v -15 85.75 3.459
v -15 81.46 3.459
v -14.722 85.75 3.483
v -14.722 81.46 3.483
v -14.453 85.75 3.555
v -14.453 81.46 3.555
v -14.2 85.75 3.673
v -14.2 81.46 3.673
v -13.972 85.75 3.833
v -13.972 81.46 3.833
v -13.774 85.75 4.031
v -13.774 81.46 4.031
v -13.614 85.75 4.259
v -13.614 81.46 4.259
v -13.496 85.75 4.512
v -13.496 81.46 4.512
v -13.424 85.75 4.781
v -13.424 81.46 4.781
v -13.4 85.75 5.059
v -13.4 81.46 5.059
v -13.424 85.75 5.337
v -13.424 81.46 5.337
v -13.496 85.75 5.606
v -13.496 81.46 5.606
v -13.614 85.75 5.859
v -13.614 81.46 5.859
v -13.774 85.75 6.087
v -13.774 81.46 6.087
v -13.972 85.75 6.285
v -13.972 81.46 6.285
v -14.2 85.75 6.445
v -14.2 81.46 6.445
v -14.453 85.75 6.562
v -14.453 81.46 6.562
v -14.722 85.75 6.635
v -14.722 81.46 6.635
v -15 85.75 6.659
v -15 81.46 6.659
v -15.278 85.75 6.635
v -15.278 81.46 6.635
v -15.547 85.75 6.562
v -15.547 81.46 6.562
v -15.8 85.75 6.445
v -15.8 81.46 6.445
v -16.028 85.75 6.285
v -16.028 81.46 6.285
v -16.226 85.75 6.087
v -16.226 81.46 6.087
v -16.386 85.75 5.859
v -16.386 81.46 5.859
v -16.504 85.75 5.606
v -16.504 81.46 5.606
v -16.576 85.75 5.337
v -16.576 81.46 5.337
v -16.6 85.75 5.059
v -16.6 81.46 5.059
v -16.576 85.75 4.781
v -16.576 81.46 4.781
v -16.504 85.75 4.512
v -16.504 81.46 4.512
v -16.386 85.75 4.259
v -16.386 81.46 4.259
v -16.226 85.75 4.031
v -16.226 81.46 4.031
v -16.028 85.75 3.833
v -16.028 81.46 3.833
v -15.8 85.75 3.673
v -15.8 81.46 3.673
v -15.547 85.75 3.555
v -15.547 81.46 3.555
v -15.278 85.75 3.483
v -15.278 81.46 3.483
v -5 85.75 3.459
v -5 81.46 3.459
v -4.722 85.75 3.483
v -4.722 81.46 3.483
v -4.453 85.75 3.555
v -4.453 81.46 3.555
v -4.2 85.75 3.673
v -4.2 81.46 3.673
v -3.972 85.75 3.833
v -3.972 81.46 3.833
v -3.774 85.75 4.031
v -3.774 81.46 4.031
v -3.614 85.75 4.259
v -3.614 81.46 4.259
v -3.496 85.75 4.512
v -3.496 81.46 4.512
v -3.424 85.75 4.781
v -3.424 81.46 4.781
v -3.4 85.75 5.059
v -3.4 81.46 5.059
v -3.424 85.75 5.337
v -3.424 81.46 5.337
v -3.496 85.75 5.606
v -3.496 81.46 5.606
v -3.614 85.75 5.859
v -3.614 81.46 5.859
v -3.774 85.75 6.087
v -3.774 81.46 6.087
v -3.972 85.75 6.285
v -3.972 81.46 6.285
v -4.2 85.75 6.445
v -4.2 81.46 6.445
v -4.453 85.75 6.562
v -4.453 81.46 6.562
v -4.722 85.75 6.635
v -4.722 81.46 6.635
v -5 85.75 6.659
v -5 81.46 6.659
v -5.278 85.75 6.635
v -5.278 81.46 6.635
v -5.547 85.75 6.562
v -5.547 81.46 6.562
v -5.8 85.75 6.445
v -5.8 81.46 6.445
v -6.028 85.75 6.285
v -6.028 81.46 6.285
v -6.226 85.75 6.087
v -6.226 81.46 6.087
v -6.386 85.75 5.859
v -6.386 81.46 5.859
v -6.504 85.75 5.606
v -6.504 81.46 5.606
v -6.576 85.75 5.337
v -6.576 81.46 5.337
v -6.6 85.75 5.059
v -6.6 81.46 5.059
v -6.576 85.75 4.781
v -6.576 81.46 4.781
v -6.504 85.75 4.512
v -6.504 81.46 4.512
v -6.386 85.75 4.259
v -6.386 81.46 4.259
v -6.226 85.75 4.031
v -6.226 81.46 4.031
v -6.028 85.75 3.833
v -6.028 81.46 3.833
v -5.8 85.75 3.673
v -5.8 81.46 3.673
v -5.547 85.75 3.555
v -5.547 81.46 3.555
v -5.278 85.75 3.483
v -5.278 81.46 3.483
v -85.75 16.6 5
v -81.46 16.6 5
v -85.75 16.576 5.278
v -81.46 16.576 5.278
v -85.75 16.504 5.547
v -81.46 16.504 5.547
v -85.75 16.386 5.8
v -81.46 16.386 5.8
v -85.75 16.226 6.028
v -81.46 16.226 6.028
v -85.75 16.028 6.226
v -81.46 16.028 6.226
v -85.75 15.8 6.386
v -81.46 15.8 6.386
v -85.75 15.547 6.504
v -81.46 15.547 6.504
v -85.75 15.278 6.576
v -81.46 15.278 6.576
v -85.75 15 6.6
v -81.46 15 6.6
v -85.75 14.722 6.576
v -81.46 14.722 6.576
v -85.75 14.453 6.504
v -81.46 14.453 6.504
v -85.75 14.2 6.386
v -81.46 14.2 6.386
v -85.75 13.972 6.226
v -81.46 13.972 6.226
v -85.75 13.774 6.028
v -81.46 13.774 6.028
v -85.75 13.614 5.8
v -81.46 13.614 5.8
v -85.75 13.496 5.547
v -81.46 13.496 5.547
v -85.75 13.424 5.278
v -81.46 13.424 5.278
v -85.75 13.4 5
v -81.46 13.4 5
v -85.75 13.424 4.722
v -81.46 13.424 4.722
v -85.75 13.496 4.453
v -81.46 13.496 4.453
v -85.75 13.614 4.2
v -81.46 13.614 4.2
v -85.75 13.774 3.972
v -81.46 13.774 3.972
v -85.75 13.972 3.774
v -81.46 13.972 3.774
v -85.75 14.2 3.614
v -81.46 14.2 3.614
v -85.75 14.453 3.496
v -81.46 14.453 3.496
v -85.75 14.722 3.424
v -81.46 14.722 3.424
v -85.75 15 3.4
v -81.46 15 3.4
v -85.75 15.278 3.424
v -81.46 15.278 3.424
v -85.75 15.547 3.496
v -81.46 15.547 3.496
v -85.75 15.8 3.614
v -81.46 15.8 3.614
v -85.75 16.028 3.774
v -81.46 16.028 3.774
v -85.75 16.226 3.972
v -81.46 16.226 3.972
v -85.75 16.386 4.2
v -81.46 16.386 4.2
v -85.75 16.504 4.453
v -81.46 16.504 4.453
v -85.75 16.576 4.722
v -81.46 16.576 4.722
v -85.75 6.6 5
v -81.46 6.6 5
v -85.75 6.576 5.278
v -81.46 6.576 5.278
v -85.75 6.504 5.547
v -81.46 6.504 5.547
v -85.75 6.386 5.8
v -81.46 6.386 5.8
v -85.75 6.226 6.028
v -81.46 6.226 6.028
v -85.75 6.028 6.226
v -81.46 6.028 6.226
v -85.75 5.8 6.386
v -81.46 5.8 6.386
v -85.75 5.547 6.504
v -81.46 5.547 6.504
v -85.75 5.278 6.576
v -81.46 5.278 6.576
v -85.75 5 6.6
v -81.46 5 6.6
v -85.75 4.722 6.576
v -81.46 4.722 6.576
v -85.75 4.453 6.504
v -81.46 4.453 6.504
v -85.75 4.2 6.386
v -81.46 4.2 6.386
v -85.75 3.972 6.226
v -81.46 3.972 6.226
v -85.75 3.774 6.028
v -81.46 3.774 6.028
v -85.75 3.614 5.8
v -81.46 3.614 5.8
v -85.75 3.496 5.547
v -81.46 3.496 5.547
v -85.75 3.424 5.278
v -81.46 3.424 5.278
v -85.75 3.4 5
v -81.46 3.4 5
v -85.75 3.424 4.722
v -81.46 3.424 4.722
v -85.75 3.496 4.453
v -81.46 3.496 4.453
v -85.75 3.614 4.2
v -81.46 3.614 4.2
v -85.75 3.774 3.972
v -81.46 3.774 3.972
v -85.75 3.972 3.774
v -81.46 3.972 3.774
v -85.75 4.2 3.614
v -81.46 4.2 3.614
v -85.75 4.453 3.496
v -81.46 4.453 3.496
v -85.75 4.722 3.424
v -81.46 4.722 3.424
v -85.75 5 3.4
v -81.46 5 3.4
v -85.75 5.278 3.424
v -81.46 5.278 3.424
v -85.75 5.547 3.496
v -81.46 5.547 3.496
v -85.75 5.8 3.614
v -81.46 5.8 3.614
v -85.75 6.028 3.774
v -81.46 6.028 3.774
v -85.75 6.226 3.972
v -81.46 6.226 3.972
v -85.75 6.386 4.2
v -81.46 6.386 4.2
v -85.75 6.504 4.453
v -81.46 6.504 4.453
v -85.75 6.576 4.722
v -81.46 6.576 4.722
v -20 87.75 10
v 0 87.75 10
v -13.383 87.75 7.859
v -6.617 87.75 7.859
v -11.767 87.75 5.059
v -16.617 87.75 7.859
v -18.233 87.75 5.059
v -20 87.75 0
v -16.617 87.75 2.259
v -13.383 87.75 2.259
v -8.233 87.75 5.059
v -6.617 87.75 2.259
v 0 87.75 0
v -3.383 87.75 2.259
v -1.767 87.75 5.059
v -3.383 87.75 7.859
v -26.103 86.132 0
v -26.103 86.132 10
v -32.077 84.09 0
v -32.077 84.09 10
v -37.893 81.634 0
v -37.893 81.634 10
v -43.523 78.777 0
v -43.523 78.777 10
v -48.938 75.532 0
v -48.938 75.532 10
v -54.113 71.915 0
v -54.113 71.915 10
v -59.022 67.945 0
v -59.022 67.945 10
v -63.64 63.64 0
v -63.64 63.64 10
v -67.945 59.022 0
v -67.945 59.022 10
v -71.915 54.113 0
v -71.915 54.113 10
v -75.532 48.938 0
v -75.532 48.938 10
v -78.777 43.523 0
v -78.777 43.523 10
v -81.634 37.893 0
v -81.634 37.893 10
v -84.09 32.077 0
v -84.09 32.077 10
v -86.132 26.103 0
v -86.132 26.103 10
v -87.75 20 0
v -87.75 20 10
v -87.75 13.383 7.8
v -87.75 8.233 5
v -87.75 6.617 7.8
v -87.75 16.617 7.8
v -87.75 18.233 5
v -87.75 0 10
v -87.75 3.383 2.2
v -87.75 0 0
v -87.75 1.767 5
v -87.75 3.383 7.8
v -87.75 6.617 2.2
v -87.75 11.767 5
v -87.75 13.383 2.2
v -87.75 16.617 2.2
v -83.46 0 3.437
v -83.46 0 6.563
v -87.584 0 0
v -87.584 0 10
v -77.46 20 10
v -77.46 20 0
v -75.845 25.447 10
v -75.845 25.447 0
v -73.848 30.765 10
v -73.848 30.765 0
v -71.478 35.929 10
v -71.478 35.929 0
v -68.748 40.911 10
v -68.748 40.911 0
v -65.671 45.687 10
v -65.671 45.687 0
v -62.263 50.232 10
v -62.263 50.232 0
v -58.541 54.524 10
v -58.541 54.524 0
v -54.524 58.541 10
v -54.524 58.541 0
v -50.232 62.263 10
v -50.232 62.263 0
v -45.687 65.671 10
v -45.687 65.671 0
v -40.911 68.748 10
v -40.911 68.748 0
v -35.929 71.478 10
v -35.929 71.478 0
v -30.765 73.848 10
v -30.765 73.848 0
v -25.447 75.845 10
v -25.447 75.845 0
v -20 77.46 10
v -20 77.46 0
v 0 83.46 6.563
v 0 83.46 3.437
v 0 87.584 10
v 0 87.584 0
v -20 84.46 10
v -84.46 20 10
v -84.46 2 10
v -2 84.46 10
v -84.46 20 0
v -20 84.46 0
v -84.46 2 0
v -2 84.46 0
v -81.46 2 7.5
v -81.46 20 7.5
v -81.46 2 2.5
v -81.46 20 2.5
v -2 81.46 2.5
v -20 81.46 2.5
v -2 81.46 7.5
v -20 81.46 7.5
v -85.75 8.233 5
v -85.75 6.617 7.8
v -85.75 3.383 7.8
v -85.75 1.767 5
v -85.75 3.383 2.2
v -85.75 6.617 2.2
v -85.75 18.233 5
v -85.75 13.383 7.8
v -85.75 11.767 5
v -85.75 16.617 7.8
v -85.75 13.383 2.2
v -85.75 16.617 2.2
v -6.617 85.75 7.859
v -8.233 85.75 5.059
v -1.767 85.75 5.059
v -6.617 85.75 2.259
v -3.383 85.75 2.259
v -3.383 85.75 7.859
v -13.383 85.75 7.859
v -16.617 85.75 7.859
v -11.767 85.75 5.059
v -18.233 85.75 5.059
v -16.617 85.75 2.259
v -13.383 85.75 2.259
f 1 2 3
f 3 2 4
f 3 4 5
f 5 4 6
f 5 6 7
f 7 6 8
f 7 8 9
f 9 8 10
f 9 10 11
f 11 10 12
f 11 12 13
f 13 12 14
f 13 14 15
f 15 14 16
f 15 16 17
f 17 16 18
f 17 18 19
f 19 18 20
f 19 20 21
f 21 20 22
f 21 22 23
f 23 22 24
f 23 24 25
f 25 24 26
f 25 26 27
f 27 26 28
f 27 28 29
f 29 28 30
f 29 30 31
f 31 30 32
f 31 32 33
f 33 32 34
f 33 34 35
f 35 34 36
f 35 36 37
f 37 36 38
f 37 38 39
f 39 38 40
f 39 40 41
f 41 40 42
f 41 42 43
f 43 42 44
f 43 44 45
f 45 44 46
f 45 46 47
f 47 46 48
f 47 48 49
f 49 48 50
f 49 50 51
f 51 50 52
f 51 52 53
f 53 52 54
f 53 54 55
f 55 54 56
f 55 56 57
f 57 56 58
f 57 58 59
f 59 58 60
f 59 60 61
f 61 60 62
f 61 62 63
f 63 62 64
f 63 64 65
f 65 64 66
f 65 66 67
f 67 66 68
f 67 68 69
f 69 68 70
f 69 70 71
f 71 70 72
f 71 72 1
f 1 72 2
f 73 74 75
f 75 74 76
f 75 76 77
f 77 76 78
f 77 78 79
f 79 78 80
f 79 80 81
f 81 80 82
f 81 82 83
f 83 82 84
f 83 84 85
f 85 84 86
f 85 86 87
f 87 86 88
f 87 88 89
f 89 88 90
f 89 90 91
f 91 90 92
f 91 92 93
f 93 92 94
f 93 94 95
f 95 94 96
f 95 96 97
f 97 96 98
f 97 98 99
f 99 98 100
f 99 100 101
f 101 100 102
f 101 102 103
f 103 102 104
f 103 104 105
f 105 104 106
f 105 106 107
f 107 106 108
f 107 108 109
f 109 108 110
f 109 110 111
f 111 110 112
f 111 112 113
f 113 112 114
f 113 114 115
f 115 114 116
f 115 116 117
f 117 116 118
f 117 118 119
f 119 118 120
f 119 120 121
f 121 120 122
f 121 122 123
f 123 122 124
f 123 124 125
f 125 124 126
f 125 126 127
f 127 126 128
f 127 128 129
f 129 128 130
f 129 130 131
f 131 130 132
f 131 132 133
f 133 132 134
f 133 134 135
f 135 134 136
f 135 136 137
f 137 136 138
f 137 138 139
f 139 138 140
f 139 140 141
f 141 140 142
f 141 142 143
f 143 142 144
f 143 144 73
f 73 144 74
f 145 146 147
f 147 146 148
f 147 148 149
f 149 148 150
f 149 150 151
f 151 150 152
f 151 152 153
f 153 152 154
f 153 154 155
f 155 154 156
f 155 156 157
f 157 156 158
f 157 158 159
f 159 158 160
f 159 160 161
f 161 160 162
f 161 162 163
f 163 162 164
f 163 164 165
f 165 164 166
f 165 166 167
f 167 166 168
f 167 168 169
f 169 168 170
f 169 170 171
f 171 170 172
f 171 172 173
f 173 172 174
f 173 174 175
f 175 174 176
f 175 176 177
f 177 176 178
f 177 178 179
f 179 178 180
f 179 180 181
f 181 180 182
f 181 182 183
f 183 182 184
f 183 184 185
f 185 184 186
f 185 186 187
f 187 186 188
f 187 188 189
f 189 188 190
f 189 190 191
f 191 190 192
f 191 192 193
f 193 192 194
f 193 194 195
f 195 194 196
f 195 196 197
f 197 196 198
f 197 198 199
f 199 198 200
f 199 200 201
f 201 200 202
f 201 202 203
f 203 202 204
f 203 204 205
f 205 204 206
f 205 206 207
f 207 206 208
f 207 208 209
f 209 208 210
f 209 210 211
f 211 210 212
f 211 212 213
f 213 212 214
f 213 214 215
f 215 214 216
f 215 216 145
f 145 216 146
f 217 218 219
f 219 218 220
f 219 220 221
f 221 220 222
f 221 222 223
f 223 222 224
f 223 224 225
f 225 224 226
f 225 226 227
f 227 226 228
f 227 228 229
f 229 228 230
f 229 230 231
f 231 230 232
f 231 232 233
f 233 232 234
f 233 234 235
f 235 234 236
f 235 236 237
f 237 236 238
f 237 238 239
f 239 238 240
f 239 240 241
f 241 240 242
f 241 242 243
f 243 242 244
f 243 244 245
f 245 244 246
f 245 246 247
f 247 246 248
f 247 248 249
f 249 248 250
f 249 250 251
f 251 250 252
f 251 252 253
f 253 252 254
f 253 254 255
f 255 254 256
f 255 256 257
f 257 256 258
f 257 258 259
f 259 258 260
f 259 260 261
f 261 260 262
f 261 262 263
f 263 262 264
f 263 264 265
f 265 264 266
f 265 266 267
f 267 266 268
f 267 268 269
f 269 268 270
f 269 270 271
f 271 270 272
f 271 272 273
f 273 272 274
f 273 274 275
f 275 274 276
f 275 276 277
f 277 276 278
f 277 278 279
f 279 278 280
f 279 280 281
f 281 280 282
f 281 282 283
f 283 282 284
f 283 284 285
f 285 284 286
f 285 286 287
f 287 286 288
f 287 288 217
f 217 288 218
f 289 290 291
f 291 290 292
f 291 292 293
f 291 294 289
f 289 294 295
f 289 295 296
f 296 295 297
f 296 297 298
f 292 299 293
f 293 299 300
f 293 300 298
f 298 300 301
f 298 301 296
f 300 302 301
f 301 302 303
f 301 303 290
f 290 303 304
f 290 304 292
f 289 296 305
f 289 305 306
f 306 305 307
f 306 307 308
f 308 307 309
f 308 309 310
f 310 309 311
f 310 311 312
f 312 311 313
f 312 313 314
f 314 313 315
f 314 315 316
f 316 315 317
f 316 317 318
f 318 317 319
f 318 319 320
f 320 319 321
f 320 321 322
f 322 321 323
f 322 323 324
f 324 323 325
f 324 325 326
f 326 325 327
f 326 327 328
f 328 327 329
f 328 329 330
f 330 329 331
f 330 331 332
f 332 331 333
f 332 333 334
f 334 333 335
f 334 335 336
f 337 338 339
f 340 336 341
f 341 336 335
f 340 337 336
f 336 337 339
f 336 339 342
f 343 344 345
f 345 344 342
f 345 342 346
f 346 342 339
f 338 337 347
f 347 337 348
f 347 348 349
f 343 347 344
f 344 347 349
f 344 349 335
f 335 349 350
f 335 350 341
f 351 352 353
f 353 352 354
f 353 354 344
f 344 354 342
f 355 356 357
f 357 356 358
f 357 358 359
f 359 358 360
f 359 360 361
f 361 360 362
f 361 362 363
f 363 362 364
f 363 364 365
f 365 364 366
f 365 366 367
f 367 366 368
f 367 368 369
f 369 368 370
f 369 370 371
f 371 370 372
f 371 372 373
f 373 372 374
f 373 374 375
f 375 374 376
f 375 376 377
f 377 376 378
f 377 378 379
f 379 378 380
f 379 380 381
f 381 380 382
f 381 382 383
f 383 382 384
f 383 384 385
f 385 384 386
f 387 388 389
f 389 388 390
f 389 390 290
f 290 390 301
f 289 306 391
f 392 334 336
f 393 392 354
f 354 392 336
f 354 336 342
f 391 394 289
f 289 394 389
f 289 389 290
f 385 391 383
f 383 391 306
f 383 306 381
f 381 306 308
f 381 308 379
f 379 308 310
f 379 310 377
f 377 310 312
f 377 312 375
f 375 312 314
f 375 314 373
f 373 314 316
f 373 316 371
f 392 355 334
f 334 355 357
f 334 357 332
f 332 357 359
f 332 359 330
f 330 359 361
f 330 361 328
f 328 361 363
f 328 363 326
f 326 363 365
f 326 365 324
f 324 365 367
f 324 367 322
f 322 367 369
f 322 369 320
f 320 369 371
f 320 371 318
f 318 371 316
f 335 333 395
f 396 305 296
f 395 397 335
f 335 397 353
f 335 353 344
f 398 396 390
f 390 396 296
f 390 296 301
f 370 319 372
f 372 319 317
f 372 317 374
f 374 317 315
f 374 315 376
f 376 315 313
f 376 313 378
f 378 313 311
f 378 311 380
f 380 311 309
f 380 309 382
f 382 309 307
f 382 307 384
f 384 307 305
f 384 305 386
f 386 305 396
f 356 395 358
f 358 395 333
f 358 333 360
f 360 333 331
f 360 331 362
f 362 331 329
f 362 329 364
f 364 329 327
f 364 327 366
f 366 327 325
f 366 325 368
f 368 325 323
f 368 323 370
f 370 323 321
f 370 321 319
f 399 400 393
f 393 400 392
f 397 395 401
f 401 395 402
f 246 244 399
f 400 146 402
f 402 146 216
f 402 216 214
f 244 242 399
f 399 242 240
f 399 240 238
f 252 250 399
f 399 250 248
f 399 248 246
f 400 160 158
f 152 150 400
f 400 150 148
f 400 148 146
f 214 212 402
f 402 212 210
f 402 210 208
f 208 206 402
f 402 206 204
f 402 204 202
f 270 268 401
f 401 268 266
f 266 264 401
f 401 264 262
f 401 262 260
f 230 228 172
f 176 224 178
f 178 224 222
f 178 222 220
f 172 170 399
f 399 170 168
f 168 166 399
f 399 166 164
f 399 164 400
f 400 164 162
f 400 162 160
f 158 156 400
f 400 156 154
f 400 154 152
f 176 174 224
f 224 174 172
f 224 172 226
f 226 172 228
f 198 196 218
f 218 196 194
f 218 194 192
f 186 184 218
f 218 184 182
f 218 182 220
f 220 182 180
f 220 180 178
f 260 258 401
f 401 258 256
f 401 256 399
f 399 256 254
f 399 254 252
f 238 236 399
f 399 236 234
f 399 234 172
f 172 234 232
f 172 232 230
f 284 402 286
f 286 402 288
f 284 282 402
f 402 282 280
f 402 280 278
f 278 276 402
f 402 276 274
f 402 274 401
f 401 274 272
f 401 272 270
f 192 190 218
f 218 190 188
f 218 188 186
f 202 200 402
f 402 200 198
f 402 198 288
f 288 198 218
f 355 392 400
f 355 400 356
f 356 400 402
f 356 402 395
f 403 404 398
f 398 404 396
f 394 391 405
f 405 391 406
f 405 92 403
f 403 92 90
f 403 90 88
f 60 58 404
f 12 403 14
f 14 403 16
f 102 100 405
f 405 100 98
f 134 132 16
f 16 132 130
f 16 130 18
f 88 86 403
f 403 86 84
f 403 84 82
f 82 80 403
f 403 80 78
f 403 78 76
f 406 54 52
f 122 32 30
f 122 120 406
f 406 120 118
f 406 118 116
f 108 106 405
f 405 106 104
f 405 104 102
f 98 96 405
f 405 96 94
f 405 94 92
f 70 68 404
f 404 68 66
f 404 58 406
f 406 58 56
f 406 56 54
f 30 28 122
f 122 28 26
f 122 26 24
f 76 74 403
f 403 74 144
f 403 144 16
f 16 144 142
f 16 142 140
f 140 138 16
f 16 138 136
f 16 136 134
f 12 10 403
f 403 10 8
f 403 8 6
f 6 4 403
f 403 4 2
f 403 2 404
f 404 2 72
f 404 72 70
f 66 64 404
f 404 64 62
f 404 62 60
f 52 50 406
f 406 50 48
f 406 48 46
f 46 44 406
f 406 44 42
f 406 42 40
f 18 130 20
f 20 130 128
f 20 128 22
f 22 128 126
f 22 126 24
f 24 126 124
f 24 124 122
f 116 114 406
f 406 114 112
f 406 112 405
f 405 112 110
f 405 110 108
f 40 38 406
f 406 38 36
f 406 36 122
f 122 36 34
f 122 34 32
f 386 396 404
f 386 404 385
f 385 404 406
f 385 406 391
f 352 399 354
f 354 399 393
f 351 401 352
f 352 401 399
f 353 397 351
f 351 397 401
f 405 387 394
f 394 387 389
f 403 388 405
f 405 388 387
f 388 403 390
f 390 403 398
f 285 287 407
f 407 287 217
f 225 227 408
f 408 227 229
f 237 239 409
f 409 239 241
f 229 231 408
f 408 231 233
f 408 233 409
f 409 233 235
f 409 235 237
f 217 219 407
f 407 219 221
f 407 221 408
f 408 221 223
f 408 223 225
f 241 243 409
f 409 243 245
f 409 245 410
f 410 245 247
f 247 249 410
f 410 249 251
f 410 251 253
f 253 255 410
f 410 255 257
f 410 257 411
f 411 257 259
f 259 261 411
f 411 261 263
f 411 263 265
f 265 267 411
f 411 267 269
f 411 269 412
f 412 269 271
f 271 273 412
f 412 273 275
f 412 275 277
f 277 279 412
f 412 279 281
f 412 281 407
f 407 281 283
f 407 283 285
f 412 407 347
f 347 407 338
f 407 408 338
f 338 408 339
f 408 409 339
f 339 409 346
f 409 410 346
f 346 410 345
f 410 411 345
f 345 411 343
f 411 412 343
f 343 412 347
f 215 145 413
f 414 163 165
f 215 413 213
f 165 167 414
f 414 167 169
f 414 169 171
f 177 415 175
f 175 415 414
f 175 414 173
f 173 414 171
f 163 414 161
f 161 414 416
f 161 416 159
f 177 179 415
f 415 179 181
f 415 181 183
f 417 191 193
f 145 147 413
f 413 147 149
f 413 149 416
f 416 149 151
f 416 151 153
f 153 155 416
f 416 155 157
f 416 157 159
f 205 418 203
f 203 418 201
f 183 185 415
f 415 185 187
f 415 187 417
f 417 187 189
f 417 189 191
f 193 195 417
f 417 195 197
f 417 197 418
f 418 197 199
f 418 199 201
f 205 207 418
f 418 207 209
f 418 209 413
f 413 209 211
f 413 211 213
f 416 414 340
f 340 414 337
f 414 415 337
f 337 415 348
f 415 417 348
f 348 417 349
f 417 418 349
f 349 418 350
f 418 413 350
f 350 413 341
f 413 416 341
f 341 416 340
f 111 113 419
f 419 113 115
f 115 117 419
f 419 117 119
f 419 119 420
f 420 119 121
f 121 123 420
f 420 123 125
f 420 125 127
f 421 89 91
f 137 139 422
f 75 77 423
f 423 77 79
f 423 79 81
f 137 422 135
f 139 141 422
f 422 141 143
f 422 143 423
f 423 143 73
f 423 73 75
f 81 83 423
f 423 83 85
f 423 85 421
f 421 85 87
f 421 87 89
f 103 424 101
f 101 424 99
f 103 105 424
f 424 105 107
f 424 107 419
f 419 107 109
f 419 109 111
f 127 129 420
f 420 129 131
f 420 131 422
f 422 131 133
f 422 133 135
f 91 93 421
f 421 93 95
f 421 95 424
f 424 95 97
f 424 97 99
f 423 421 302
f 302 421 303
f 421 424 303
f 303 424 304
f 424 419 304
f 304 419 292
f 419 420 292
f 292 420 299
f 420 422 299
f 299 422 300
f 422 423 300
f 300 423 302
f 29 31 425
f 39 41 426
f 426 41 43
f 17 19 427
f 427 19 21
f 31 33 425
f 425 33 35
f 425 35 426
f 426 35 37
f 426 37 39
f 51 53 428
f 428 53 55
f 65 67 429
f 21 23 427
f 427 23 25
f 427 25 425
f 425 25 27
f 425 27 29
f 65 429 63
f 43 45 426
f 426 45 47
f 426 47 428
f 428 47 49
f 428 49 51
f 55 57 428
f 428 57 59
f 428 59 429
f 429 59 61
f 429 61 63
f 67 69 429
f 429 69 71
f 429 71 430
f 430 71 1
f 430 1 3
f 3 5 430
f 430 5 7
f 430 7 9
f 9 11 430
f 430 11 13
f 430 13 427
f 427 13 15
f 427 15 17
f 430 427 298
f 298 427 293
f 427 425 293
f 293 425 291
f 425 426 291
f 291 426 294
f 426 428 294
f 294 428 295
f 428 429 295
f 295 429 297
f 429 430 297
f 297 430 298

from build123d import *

# Parameters (mm, degrees)
BOSS_EXTRU_1_DEPTH      = 10
ENL_V_MAT_EXTRU_1_DEPTH = 20
ENL_V_MAT_EXTRU_2_DEPTH = 20
ESQUISSE5_R             = 1.6
ENL_V_MAT_EXTRU_3_DEPTH = 20
ESQUISSE6_R             = 1.6
ENL_V_MAT_EXTRU_4_DEPTH = 20
CHANFREIN1_SIZE         = 2
ENL_V_MAT_EXTRU_5_DEPTH = 2
ENL_V_MAT_EXTRU_6_DEPTH = 2


with BuildPart() as part:
    # Esquisse1 → Boss.-Extru.1 (new body)
    with BuildSketch(Plane.XY):
        with BuildLine():
            Line((-20, 87.749643874), (0, 87.749643874))
            Line((0, 87.749643874), (0, 77.459666924))
            Line((0, 77.459666924), (-20, 77.459666924))
            ThreePointArc((-20, 77.459666924), (-56.568542495, 56.568542495), (-77.459666924, 20))
            Line((-77.459666924, 20), (-77.459666924, 0))
            Line((-77.459666924, 0), (-87.749643874, 0))
            Line((-87.749643874, 0), (-87.749643874, 20))
            ThreePointArc((-87.749643874, 20), (-63.639610307, 63.639610307), (-20, 87.749643874))
        make_face()
    extrude(amount=BOSS_EXTRU_1_DEPTH)

    # Esquisse2 → Enlèv. mat.-Extru.1 (cut)
    with BuildSketch(Plane.XZ):
        Polygon((-84.459666924, 10), (-77.459666924, 10), (-77.459666924, 0), (-84.459666924, 0), (-81.459666924, 2.5), (-81.459666924, 7.5), align=None)
    extrude(amount=-ENL_V_MAT_EXTRU_1_DEPTH, mode=Mode.SUBTRACT)

    # Esquisse4 → Enlèv. mat.-Extru.2 (cut)
    with BuildSketch(Plane(origin=(0, 0, 0), x_dir=(0, 0, -1), z_dir=(1, 0, 0))):
        Polygon((0, 84.459666924), (0, 77.459666924), (-10, 77.459666924), (-10, 84.459666924), (-7.5, 81.459666924), (-2.5, 81.459666924), align=None)
    extrude(amount=-ENL_V_MAT_EXTRU_2_DEPTH, mode=Mode.SUBTRACT)

    # Esquisse5 → Enlèv. mat.-Extru.3 (cut)
    with BuildSketch(Plane(origin=(-81.459666924, 0, 0), x_dir=(0, 0, -1), z_dir=(1, 0, 0))):
        with Locations(Location((-5, 5, 0), (0, 0, 90))):
            Circle(ESQUISSE5_R)
        with Locations(Location((-5, 15, 0), (0, 0, 90))):
            Circle(ESQUISSE5_R)
    extrude(amount=-ENL_V_MAT_EXTRU_3_DEPTH, mode=Mode.SUBTRACT)

    # Esquisse6 → Enlèv. mat.-Extru.4 (cut)
    with BuildSketch(Plane.XZ.offset(-81.459666924)):
        with Locations(Location((-5, 5.05896145, 0), (0, 0, 270))):
            Circle(ESQUISSE6_R)
        with Locations(Location((-15, 5.05896145, 0), (0, 0, 270))):
            Circle(ESQUISSE6_R)
    extrude(amount=-ENL_V_MAT_EXTRU_4_DEPTH, mode=Mode.SUBTRACT)

    # Chanfrein1
    chanfrein1_edges = [part.edges().sort_by_distance(p)[0] for p in [
        (-82.959666924, 0, 8.75),
        (-81.459666924, 0, 5),
        (-82.959666924, 0, 1.25),
        (0, 82.959666924, 1.25),
        (0, 81.459666924, 5),
        (0, 82.959666924, 8.75),
    ]]
    chamfer(chanfrein1_edges, length=CHANFREIN1_SIZE)

    # Esquisse7 → Enlèv. mat.-Extru.5 (cut)
    with BuildSketch(Plane.ZY.offset(87.749643874)):
        Polygon((2.2, 6.616580754), (2.2, 3.383419246), (5, 1.766838493), (7.8, 3.383419246), (7.8, 6.616580754), (5, 8.233161507), align=None)
        Polygon((7.8, 16.616580754), (5, 18.233161507), (2.2, 16.616580754), (2.2, 13.383419246), (5, 11.766838493), (7.8, 13.383419246), align=None)
    extrude(amount=-ENL_V_MAT_EXTRU_5_DEPTH, mode=Mode.SUBTRACT)

    # Esquisse8 → Enlèv. mat.-Extru.6 (cut)
    with BuildSketch(Plane(origin=(0, 87.749643874, 0), x_dir=(1, 0, 0), z_dir=(0, 1, 0))):
        Polygon((-3.383419246, -2.25896145), (-6.616580754, -2.25896145), (-8.233161507, -5.05896145), (-6.616580754, -7.85896145), (-3.383419246, -7.85896145), (-1.766838493, -5.05896145), align=None)
        Polygon((-13.383419246, -2.25896145), (-16.616580754, -2.25896145), (-18.233161507, -5.05896145), (-16.616580754, -7.85896145), (-13.383419246, -7.85896145), (-11.766838493, -5.05896145), align=None)
    extrude(amount=-ENL_V_MAT_EXTRU_6_DEPTH, mode=Mode.SUBTRACT)


solid = part.part
